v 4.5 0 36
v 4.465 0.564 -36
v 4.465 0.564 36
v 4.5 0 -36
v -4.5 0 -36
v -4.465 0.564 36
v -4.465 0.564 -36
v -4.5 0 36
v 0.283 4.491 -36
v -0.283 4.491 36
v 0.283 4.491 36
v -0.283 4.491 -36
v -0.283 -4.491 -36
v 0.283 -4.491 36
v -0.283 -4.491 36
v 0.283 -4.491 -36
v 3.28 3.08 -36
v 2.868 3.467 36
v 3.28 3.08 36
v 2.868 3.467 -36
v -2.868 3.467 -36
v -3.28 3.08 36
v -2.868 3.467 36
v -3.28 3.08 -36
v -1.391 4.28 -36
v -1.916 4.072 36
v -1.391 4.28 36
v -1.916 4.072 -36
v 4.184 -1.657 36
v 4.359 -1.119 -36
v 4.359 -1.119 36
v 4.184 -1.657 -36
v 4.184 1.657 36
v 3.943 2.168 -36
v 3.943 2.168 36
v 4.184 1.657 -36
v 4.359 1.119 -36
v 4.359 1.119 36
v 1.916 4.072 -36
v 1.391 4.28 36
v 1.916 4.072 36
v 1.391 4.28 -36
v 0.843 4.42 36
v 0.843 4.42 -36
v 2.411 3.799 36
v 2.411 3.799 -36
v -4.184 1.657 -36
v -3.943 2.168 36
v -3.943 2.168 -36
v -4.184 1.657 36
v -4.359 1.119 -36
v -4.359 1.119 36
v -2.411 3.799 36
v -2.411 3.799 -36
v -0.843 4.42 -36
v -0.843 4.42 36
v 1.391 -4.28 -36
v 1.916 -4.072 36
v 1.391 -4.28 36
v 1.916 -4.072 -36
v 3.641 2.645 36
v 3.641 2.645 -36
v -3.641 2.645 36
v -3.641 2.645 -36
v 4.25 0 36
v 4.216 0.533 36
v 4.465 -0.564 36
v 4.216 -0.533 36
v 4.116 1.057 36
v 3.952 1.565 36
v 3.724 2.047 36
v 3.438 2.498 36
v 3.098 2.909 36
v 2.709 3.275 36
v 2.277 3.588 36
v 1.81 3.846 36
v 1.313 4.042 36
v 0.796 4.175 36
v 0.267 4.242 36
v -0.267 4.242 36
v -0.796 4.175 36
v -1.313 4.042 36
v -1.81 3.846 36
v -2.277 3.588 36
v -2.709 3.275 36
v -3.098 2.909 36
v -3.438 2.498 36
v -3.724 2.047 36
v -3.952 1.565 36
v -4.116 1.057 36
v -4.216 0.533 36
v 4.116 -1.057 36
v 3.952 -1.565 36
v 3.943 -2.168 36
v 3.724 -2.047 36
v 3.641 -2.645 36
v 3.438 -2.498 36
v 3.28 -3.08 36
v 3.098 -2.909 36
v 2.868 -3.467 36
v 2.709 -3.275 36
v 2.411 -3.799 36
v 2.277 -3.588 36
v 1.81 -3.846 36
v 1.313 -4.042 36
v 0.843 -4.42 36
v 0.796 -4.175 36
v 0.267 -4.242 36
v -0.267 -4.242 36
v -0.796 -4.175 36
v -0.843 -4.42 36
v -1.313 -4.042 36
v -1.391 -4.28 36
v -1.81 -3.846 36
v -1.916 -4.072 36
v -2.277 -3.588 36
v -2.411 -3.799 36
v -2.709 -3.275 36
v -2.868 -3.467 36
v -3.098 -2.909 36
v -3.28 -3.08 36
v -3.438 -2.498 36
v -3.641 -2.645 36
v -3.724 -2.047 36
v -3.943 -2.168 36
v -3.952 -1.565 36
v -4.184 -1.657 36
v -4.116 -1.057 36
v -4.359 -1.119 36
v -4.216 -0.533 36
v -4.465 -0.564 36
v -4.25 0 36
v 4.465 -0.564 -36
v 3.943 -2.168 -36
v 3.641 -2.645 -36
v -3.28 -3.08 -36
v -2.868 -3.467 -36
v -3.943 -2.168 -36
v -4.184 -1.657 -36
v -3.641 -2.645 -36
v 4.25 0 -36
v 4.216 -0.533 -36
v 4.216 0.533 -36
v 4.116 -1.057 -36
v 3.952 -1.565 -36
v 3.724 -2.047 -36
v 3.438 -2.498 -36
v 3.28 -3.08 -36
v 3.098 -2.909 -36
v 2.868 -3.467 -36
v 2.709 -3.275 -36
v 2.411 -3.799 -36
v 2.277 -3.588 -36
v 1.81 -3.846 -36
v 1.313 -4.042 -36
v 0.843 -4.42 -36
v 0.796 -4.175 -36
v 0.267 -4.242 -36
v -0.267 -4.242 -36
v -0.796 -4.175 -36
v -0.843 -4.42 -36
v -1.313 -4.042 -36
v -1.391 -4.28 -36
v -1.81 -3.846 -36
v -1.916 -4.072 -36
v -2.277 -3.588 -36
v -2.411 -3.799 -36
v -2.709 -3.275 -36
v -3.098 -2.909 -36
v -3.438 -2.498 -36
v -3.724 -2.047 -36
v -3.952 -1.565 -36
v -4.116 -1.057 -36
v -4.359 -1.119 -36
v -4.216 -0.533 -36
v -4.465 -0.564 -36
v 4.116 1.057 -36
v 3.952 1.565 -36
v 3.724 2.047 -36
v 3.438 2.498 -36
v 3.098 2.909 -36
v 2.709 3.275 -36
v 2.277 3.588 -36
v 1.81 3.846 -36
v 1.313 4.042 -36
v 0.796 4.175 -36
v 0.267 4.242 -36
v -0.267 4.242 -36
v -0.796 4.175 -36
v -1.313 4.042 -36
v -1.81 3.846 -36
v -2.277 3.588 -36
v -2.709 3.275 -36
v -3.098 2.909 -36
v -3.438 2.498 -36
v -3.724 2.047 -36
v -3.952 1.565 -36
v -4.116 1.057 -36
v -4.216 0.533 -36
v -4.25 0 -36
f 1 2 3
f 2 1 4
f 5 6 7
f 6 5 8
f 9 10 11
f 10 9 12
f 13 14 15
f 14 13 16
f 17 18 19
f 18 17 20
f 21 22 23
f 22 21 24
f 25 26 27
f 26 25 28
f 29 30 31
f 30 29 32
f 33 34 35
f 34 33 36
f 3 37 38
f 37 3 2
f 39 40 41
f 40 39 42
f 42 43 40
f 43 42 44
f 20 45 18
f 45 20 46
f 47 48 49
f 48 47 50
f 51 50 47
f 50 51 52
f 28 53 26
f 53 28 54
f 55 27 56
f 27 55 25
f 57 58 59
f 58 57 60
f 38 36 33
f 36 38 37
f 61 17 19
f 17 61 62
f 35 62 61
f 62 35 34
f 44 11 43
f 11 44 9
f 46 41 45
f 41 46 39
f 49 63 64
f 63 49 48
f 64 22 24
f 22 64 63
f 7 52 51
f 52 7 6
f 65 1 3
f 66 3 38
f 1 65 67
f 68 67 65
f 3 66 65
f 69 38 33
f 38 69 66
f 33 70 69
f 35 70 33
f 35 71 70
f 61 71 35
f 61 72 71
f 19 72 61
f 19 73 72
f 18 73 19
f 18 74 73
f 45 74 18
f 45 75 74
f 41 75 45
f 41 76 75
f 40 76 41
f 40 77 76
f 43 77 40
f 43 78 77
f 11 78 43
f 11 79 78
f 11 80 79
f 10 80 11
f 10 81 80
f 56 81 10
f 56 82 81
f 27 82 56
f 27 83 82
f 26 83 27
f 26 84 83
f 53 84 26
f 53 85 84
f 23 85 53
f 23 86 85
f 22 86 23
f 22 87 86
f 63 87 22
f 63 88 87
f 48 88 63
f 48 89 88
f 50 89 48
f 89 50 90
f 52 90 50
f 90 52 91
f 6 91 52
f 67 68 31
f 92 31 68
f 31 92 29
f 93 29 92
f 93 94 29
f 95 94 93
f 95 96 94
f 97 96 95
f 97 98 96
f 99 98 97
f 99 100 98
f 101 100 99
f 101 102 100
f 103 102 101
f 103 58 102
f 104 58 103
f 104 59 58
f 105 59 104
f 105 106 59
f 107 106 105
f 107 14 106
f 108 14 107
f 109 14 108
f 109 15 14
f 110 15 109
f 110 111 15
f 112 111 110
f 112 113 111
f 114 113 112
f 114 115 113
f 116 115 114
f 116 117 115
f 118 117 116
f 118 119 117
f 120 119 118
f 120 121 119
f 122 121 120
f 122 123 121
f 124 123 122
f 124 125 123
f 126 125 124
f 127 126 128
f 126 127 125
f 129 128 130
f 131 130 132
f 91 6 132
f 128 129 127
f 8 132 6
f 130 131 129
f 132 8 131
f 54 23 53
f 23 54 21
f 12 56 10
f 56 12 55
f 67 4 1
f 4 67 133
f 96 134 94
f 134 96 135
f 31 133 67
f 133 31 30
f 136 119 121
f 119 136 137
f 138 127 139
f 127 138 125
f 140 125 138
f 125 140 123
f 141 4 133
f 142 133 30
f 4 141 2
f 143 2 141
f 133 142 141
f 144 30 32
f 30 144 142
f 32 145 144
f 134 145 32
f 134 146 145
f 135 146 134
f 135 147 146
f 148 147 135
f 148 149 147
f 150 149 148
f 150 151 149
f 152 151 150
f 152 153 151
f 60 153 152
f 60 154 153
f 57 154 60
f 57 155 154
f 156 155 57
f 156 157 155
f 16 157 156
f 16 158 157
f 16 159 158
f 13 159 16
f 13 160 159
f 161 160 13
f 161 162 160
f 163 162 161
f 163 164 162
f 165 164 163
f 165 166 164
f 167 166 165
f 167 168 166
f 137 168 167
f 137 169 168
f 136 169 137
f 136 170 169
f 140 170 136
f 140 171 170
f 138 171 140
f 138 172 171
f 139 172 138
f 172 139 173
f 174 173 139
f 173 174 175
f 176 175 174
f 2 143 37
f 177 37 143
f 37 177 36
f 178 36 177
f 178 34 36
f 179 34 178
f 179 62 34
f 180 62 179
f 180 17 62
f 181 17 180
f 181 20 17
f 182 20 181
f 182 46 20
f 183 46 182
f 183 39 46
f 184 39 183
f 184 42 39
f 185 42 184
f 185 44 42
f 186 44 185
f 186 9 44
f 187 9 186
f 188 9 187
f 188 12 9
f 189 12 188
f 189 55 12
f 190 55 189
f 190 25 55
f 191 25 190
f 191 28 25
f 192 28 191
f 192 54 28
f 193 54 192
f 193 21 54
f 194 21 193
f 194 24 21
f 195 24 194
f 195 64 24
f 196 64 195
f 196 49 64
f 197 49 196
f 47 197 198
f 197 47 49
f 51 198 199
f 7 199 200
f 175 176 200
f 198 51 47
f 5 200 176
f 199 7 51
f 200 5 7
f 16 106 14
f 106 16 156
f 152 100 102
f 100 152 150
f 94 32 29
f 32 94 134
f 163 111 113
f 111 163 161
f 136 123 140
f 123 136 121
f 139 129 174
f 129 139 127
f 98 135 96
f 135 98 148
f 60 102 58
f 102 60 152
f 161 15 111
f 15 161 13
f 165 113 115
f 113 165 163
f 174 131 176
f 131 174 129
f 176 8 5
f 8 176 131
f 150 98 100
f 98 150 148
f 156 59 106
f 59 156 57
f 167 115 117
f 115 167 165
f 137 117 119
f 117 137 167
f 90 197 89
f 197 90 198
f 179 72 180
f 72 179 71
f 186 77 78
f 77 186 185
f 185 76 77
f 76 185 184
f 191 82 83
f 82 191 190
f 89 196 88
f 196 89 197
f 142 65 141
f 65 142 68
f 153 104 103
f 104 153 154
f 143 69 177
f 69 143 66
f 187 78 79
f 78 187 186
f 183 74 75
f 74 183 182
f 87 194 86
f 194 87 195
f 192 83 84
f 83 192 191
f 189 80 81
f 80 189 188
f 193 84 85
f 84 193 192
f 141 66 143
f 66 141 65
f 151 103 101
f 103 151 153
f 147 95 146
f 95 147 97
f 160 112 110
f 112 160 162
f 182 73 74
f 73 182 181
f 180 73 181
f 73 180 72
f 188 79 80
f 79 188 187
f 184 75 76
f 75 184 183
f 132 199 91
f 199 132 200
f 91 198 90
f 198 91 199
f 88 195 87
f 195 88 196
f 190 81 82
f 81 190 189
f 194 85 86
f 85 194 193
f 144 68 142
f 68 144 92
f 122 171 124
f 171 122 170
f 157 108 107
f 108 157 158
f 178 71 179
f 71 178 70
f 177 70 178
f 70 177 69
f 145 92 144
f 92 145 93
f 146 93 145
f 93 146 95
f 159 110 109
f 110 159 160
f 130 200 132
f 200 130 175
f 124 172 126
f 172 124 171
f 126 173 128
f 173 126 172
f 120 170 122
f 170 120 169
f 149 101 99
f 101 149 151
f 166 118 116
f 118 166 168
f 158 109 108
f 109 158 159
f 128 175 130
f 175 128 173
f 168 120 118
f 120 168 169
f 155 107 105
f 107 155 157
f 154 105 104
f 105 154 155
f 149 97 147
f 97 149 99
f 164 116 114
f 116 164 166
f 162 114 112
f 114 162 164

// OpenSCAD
$fn = 50;


difference() {
	union() {
		translate(v = [0, 0, -36.0000000000]) {
			cylinder(h = 72, r = 4.5000000000);
		}
	}
	union() {
		translate(v = [0, 0, -100.0000000000]) {
			cylinder(h = 200, r = 4.2500000000);
		}
	}
}
